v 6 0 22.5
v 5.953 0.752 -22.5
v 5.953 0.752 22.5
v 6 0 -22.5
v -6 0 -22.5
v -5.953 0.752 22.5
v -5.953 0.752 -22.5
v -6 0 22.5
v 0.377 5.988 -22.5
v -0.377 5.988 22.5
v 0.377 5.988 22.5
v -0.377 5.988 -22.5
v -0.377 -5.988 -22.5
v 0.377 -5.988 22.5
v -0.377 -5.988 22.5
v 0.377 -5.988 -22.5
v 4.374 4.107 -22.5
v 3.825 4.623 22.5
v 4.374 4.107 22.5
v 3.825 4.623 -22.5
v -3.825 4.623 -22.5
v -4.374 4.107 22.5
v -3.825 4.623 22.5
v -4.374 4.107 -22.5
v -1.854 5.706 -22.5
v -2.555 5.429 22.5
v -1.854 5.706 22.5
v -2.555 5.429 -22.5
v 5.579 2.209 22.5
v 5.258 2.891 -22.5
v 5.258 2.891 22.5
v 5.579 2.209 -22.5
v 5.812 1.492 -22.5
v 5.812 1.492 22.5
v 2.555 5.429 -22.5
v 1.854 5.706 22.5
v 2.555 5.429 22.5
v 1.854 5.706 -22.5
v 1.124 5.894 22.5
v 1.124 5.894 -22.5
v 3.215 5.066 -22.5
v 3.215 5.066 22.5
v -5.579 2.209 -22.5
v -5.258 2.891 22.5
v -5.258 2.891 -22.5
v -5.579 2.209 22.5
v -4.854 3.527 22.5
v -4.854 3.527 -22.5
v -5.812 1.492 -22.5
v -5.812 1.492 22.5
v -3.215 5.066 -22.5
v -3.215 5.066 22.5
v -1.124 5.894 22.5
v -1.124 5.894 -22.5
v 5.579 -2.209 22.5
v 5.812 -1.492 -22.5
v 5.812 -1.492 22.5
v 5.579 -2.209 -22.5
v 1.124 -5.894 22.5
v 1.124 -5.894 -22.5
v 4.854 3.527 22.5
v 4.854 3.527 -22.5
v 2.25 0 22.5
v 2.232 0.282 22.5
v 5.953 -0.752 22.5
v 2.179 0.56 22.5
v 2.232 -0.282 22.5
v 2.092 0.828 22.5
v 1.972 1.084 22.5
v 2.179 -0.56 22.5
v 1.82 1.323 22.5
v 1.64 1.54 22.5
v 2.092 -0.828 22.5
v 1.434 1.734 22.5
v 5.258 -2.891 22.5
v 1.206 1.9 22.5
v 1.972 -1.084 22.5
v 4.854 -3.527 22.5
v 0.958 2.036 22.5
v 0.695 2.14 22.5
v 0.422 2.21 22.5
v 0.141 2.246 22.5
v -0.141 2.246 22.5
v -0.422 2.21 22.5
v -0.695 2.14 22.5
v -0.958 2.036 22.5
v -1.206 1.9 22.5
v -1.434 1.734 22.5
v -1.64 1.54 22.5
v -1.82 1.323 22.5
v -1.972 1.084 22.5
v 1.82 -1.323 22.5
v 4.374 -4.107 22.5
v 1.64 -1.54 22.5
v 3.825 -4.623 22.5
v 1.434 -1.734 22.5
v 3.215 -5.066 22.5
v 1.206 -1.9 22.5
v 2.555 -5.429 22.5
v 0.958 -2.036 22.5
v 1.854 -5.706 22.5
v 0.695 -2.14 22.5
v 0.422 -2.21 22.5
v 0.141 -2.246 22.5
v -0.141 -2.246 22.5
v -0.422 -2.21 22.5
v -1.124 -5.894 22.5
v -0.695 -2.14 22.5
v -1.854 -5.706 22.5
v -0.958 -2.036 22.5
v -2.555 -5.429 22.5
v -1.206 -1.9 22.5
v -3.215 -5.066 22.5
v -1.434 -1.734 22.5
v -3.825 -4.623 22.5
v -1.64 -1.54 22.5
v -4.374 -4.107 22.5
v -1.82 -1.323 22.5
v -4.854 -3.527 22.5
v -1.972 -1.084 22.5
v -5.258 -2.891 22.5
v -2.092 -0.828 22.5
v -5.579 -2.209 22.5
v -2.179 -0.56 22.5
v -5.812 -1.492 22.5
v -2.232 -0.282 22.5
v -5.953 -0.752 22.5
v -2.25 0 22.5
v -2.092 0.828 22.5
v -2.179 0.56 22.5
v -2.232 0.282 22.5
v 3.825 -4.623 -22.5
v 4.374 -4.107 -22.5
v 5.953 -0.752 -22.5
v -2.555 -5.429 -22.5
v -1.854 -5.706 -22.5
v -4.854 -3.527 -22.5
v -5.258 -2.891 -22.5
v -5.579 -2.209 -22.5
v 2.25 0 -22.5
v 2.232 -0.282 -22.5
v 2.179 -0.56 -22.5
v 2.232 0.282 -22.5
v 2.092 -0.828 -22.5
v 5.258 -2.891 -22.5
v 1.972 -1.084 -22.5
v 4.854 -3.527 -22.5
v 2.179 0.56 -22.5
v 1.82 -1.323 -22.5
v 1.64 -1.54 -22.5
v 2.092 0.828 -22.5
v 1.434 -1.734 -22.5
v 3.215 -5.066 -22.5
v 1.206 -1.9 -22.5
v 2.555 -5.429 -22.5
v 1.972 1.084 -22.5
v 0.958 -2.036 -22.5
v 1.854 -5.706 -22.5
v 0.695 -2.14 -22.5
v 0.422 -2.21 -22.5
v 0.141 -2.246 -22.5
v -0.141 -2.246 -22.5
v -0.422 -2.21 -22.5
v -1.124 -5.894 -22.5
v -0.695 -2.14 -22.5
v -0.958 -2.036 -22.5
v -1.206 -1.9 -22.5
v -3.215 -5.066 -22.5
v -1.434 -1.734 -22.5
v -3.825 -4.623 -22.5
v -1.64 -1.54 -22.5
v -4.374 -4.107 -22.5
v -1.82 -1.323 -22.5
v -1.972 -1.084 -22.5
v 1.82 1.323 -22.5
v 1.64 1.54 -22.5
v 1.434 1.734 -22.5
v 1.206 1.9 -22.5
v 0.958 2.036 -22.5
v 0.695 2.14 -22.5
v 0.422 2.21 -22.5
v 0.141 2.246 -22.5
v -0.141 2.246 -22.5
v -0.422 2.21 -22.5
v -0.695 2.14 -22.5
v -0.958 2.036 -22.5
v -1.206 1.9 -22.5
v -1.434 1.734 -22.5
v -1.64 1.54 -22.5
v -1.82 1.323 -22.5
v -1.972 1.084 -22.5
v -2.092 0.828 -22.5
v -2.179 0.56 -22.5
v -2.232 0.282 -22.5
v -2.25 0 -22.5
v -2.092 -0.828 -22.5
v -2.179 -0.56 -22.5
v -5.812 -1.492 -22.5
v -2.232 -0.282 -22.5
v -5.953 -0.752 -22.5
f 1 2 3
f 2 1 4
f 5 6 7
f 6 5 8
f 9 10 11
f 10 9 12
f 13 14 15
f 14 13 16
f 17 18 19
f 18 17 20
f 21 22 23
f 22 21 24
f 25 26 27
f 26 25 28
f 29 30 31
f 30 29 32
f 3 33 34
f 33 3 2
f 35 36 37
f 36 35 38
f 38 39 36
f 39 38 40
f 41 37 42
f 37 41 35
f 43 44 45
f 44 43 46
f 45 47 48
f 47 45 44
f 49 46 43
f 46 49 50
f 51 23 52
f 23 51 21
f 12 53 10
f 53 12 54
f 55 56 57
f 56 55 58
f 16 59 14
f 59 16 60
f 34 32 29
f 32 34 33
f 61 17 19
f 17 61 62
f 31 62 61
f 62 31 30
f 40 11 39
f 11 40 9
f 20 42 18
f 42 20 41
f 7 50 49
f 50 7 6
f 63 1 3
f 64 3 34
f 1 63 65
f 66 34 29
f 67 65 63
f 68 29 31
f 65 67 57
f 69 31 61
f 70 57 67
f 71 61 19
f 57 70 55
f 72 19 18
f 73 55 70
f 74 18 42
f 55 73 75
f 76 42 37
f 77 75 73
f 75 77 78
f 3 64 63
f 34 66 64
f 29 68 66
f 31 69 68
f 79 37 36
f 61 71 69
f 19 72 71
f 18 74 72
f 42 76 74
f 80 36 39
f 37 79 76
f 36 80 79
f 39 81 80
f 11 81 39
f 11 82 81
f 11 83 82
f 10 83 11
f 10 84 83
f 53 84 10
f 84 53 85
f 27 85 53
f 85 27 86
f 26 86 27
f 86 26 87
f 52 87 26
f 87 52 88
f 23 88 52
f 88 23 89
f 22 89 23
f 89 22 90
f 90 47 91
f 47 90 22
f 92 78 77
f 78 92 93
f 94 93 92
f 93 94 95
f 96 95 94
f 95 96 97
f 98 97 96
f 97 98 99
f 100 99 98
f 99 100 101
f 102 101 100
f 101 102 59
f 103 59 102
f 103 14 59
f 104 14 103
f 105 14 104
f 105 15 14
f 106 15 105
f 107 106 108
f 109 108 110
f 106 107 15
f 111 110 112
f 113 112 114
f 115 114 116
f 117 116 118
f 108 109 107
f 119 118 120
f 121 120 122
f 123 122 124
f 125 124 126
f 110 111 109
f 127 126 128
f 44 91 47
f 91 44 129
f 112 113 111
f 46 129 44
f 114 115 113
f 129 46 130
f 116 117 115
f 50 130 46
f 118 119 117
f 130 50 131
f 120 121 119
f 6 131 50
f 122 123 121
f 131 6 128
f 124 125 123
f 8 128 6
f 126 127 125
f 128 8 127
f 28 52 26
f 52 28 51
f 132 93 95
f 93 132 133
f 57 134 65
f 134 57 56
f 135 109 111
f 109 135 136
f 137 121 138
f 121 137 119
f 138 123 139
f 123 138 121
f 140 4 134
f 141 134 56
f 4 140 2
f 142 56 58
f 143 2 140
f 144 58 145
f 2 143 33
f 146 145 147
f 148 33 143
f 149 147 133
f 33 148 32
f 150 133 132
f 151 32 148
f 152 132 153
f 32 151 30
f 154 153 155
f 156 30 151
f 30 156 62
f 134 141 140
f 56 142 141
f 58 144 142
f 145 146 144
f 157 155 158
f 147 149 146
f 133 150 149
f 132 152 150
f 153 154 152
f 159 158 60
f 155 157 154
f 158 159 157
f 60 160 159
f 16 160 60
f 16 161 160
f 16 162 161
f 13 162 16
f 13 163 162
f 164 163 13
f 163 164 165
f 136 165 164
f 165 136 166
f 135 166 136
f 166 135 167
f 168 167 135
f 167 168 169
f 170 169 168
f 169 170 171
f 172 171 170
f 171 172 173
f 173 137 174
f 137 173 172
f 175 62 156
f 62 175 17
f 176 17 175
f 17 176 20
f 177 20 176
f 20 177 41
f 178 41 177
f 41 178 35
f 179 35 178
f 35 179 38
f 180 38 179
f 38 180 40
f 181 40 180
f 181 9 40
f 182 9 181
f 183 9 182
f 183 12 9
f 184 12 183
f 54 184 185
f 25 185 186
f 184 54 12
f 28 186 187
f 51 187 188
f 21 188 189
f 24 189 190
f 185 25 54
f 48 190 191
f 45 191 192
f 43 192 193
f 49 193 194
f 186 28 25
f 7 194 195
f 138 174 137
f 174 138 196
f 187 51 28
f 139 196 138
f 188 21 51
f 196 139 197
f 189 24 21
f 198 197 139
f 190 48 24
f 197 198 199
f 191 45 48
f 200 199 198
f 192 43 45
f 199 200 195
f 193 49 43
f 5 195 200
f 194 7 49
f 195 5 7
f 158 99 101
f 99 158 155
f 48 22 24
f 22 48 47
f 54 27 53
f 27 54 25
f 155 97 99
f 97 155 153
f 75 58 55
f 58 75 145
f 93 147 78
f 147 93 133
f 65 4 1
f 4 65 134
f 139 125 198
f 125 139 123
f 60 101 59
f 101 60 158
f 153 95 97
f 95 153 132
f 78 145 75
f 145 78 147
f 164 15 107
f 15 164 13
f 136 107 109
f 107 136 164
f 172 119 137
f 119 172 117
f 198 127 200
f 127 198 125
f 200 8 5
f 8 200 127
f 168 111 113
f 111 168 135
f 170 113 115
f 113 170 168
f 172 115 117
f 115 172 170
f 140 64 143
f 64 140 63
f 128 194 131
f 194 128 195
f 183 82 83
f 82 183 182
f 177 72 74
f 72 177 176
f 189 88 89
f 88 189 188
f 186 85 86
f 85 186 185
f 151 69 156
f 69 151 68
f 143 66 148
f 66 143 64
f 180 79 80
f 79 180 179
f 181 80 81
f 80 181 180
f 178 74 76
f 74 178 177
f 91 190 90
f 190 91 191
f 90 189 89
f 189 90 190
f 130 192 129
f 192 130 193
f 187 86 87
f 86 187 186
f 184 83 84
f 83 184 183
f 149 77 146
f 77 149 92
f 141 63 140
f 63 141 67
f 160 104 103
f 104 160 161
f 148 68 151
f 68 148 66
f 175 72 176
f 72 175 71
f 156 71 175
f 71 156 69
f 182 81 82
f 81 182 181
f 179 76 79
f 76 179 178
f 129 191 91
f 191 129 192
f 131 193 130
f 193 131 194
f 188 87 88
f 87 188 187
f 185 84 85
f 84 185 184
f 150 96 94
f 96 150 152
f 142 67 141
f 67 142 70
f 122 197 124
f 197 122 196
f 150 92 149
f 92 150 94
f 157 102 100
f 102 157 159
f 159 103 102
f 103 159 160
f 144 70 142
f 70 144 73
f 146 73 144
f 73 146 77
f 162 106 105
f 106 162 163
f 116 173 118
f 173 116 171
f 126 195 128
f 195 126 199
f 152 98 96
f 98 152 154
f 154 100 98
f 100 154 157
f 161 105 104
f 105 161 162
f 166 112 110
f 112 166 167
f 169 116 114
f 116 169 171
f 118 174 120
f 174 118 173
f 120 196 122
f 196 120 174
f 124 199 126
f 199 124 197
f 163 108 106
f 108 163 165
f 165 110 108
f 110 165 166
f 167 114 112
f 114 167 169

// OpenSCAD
$fn = 50;


difference() {
	union() {
		translate(v = [0, 0, -22.5000000000]) {
			cylinder(h = 45, r = 6.0000000000);
		}
	}
	union() {
		translate(v = [0, 0, -100.0000000000]) {
			cylinder(h = 200, r = 2.2500000000);
		}
	}
}
